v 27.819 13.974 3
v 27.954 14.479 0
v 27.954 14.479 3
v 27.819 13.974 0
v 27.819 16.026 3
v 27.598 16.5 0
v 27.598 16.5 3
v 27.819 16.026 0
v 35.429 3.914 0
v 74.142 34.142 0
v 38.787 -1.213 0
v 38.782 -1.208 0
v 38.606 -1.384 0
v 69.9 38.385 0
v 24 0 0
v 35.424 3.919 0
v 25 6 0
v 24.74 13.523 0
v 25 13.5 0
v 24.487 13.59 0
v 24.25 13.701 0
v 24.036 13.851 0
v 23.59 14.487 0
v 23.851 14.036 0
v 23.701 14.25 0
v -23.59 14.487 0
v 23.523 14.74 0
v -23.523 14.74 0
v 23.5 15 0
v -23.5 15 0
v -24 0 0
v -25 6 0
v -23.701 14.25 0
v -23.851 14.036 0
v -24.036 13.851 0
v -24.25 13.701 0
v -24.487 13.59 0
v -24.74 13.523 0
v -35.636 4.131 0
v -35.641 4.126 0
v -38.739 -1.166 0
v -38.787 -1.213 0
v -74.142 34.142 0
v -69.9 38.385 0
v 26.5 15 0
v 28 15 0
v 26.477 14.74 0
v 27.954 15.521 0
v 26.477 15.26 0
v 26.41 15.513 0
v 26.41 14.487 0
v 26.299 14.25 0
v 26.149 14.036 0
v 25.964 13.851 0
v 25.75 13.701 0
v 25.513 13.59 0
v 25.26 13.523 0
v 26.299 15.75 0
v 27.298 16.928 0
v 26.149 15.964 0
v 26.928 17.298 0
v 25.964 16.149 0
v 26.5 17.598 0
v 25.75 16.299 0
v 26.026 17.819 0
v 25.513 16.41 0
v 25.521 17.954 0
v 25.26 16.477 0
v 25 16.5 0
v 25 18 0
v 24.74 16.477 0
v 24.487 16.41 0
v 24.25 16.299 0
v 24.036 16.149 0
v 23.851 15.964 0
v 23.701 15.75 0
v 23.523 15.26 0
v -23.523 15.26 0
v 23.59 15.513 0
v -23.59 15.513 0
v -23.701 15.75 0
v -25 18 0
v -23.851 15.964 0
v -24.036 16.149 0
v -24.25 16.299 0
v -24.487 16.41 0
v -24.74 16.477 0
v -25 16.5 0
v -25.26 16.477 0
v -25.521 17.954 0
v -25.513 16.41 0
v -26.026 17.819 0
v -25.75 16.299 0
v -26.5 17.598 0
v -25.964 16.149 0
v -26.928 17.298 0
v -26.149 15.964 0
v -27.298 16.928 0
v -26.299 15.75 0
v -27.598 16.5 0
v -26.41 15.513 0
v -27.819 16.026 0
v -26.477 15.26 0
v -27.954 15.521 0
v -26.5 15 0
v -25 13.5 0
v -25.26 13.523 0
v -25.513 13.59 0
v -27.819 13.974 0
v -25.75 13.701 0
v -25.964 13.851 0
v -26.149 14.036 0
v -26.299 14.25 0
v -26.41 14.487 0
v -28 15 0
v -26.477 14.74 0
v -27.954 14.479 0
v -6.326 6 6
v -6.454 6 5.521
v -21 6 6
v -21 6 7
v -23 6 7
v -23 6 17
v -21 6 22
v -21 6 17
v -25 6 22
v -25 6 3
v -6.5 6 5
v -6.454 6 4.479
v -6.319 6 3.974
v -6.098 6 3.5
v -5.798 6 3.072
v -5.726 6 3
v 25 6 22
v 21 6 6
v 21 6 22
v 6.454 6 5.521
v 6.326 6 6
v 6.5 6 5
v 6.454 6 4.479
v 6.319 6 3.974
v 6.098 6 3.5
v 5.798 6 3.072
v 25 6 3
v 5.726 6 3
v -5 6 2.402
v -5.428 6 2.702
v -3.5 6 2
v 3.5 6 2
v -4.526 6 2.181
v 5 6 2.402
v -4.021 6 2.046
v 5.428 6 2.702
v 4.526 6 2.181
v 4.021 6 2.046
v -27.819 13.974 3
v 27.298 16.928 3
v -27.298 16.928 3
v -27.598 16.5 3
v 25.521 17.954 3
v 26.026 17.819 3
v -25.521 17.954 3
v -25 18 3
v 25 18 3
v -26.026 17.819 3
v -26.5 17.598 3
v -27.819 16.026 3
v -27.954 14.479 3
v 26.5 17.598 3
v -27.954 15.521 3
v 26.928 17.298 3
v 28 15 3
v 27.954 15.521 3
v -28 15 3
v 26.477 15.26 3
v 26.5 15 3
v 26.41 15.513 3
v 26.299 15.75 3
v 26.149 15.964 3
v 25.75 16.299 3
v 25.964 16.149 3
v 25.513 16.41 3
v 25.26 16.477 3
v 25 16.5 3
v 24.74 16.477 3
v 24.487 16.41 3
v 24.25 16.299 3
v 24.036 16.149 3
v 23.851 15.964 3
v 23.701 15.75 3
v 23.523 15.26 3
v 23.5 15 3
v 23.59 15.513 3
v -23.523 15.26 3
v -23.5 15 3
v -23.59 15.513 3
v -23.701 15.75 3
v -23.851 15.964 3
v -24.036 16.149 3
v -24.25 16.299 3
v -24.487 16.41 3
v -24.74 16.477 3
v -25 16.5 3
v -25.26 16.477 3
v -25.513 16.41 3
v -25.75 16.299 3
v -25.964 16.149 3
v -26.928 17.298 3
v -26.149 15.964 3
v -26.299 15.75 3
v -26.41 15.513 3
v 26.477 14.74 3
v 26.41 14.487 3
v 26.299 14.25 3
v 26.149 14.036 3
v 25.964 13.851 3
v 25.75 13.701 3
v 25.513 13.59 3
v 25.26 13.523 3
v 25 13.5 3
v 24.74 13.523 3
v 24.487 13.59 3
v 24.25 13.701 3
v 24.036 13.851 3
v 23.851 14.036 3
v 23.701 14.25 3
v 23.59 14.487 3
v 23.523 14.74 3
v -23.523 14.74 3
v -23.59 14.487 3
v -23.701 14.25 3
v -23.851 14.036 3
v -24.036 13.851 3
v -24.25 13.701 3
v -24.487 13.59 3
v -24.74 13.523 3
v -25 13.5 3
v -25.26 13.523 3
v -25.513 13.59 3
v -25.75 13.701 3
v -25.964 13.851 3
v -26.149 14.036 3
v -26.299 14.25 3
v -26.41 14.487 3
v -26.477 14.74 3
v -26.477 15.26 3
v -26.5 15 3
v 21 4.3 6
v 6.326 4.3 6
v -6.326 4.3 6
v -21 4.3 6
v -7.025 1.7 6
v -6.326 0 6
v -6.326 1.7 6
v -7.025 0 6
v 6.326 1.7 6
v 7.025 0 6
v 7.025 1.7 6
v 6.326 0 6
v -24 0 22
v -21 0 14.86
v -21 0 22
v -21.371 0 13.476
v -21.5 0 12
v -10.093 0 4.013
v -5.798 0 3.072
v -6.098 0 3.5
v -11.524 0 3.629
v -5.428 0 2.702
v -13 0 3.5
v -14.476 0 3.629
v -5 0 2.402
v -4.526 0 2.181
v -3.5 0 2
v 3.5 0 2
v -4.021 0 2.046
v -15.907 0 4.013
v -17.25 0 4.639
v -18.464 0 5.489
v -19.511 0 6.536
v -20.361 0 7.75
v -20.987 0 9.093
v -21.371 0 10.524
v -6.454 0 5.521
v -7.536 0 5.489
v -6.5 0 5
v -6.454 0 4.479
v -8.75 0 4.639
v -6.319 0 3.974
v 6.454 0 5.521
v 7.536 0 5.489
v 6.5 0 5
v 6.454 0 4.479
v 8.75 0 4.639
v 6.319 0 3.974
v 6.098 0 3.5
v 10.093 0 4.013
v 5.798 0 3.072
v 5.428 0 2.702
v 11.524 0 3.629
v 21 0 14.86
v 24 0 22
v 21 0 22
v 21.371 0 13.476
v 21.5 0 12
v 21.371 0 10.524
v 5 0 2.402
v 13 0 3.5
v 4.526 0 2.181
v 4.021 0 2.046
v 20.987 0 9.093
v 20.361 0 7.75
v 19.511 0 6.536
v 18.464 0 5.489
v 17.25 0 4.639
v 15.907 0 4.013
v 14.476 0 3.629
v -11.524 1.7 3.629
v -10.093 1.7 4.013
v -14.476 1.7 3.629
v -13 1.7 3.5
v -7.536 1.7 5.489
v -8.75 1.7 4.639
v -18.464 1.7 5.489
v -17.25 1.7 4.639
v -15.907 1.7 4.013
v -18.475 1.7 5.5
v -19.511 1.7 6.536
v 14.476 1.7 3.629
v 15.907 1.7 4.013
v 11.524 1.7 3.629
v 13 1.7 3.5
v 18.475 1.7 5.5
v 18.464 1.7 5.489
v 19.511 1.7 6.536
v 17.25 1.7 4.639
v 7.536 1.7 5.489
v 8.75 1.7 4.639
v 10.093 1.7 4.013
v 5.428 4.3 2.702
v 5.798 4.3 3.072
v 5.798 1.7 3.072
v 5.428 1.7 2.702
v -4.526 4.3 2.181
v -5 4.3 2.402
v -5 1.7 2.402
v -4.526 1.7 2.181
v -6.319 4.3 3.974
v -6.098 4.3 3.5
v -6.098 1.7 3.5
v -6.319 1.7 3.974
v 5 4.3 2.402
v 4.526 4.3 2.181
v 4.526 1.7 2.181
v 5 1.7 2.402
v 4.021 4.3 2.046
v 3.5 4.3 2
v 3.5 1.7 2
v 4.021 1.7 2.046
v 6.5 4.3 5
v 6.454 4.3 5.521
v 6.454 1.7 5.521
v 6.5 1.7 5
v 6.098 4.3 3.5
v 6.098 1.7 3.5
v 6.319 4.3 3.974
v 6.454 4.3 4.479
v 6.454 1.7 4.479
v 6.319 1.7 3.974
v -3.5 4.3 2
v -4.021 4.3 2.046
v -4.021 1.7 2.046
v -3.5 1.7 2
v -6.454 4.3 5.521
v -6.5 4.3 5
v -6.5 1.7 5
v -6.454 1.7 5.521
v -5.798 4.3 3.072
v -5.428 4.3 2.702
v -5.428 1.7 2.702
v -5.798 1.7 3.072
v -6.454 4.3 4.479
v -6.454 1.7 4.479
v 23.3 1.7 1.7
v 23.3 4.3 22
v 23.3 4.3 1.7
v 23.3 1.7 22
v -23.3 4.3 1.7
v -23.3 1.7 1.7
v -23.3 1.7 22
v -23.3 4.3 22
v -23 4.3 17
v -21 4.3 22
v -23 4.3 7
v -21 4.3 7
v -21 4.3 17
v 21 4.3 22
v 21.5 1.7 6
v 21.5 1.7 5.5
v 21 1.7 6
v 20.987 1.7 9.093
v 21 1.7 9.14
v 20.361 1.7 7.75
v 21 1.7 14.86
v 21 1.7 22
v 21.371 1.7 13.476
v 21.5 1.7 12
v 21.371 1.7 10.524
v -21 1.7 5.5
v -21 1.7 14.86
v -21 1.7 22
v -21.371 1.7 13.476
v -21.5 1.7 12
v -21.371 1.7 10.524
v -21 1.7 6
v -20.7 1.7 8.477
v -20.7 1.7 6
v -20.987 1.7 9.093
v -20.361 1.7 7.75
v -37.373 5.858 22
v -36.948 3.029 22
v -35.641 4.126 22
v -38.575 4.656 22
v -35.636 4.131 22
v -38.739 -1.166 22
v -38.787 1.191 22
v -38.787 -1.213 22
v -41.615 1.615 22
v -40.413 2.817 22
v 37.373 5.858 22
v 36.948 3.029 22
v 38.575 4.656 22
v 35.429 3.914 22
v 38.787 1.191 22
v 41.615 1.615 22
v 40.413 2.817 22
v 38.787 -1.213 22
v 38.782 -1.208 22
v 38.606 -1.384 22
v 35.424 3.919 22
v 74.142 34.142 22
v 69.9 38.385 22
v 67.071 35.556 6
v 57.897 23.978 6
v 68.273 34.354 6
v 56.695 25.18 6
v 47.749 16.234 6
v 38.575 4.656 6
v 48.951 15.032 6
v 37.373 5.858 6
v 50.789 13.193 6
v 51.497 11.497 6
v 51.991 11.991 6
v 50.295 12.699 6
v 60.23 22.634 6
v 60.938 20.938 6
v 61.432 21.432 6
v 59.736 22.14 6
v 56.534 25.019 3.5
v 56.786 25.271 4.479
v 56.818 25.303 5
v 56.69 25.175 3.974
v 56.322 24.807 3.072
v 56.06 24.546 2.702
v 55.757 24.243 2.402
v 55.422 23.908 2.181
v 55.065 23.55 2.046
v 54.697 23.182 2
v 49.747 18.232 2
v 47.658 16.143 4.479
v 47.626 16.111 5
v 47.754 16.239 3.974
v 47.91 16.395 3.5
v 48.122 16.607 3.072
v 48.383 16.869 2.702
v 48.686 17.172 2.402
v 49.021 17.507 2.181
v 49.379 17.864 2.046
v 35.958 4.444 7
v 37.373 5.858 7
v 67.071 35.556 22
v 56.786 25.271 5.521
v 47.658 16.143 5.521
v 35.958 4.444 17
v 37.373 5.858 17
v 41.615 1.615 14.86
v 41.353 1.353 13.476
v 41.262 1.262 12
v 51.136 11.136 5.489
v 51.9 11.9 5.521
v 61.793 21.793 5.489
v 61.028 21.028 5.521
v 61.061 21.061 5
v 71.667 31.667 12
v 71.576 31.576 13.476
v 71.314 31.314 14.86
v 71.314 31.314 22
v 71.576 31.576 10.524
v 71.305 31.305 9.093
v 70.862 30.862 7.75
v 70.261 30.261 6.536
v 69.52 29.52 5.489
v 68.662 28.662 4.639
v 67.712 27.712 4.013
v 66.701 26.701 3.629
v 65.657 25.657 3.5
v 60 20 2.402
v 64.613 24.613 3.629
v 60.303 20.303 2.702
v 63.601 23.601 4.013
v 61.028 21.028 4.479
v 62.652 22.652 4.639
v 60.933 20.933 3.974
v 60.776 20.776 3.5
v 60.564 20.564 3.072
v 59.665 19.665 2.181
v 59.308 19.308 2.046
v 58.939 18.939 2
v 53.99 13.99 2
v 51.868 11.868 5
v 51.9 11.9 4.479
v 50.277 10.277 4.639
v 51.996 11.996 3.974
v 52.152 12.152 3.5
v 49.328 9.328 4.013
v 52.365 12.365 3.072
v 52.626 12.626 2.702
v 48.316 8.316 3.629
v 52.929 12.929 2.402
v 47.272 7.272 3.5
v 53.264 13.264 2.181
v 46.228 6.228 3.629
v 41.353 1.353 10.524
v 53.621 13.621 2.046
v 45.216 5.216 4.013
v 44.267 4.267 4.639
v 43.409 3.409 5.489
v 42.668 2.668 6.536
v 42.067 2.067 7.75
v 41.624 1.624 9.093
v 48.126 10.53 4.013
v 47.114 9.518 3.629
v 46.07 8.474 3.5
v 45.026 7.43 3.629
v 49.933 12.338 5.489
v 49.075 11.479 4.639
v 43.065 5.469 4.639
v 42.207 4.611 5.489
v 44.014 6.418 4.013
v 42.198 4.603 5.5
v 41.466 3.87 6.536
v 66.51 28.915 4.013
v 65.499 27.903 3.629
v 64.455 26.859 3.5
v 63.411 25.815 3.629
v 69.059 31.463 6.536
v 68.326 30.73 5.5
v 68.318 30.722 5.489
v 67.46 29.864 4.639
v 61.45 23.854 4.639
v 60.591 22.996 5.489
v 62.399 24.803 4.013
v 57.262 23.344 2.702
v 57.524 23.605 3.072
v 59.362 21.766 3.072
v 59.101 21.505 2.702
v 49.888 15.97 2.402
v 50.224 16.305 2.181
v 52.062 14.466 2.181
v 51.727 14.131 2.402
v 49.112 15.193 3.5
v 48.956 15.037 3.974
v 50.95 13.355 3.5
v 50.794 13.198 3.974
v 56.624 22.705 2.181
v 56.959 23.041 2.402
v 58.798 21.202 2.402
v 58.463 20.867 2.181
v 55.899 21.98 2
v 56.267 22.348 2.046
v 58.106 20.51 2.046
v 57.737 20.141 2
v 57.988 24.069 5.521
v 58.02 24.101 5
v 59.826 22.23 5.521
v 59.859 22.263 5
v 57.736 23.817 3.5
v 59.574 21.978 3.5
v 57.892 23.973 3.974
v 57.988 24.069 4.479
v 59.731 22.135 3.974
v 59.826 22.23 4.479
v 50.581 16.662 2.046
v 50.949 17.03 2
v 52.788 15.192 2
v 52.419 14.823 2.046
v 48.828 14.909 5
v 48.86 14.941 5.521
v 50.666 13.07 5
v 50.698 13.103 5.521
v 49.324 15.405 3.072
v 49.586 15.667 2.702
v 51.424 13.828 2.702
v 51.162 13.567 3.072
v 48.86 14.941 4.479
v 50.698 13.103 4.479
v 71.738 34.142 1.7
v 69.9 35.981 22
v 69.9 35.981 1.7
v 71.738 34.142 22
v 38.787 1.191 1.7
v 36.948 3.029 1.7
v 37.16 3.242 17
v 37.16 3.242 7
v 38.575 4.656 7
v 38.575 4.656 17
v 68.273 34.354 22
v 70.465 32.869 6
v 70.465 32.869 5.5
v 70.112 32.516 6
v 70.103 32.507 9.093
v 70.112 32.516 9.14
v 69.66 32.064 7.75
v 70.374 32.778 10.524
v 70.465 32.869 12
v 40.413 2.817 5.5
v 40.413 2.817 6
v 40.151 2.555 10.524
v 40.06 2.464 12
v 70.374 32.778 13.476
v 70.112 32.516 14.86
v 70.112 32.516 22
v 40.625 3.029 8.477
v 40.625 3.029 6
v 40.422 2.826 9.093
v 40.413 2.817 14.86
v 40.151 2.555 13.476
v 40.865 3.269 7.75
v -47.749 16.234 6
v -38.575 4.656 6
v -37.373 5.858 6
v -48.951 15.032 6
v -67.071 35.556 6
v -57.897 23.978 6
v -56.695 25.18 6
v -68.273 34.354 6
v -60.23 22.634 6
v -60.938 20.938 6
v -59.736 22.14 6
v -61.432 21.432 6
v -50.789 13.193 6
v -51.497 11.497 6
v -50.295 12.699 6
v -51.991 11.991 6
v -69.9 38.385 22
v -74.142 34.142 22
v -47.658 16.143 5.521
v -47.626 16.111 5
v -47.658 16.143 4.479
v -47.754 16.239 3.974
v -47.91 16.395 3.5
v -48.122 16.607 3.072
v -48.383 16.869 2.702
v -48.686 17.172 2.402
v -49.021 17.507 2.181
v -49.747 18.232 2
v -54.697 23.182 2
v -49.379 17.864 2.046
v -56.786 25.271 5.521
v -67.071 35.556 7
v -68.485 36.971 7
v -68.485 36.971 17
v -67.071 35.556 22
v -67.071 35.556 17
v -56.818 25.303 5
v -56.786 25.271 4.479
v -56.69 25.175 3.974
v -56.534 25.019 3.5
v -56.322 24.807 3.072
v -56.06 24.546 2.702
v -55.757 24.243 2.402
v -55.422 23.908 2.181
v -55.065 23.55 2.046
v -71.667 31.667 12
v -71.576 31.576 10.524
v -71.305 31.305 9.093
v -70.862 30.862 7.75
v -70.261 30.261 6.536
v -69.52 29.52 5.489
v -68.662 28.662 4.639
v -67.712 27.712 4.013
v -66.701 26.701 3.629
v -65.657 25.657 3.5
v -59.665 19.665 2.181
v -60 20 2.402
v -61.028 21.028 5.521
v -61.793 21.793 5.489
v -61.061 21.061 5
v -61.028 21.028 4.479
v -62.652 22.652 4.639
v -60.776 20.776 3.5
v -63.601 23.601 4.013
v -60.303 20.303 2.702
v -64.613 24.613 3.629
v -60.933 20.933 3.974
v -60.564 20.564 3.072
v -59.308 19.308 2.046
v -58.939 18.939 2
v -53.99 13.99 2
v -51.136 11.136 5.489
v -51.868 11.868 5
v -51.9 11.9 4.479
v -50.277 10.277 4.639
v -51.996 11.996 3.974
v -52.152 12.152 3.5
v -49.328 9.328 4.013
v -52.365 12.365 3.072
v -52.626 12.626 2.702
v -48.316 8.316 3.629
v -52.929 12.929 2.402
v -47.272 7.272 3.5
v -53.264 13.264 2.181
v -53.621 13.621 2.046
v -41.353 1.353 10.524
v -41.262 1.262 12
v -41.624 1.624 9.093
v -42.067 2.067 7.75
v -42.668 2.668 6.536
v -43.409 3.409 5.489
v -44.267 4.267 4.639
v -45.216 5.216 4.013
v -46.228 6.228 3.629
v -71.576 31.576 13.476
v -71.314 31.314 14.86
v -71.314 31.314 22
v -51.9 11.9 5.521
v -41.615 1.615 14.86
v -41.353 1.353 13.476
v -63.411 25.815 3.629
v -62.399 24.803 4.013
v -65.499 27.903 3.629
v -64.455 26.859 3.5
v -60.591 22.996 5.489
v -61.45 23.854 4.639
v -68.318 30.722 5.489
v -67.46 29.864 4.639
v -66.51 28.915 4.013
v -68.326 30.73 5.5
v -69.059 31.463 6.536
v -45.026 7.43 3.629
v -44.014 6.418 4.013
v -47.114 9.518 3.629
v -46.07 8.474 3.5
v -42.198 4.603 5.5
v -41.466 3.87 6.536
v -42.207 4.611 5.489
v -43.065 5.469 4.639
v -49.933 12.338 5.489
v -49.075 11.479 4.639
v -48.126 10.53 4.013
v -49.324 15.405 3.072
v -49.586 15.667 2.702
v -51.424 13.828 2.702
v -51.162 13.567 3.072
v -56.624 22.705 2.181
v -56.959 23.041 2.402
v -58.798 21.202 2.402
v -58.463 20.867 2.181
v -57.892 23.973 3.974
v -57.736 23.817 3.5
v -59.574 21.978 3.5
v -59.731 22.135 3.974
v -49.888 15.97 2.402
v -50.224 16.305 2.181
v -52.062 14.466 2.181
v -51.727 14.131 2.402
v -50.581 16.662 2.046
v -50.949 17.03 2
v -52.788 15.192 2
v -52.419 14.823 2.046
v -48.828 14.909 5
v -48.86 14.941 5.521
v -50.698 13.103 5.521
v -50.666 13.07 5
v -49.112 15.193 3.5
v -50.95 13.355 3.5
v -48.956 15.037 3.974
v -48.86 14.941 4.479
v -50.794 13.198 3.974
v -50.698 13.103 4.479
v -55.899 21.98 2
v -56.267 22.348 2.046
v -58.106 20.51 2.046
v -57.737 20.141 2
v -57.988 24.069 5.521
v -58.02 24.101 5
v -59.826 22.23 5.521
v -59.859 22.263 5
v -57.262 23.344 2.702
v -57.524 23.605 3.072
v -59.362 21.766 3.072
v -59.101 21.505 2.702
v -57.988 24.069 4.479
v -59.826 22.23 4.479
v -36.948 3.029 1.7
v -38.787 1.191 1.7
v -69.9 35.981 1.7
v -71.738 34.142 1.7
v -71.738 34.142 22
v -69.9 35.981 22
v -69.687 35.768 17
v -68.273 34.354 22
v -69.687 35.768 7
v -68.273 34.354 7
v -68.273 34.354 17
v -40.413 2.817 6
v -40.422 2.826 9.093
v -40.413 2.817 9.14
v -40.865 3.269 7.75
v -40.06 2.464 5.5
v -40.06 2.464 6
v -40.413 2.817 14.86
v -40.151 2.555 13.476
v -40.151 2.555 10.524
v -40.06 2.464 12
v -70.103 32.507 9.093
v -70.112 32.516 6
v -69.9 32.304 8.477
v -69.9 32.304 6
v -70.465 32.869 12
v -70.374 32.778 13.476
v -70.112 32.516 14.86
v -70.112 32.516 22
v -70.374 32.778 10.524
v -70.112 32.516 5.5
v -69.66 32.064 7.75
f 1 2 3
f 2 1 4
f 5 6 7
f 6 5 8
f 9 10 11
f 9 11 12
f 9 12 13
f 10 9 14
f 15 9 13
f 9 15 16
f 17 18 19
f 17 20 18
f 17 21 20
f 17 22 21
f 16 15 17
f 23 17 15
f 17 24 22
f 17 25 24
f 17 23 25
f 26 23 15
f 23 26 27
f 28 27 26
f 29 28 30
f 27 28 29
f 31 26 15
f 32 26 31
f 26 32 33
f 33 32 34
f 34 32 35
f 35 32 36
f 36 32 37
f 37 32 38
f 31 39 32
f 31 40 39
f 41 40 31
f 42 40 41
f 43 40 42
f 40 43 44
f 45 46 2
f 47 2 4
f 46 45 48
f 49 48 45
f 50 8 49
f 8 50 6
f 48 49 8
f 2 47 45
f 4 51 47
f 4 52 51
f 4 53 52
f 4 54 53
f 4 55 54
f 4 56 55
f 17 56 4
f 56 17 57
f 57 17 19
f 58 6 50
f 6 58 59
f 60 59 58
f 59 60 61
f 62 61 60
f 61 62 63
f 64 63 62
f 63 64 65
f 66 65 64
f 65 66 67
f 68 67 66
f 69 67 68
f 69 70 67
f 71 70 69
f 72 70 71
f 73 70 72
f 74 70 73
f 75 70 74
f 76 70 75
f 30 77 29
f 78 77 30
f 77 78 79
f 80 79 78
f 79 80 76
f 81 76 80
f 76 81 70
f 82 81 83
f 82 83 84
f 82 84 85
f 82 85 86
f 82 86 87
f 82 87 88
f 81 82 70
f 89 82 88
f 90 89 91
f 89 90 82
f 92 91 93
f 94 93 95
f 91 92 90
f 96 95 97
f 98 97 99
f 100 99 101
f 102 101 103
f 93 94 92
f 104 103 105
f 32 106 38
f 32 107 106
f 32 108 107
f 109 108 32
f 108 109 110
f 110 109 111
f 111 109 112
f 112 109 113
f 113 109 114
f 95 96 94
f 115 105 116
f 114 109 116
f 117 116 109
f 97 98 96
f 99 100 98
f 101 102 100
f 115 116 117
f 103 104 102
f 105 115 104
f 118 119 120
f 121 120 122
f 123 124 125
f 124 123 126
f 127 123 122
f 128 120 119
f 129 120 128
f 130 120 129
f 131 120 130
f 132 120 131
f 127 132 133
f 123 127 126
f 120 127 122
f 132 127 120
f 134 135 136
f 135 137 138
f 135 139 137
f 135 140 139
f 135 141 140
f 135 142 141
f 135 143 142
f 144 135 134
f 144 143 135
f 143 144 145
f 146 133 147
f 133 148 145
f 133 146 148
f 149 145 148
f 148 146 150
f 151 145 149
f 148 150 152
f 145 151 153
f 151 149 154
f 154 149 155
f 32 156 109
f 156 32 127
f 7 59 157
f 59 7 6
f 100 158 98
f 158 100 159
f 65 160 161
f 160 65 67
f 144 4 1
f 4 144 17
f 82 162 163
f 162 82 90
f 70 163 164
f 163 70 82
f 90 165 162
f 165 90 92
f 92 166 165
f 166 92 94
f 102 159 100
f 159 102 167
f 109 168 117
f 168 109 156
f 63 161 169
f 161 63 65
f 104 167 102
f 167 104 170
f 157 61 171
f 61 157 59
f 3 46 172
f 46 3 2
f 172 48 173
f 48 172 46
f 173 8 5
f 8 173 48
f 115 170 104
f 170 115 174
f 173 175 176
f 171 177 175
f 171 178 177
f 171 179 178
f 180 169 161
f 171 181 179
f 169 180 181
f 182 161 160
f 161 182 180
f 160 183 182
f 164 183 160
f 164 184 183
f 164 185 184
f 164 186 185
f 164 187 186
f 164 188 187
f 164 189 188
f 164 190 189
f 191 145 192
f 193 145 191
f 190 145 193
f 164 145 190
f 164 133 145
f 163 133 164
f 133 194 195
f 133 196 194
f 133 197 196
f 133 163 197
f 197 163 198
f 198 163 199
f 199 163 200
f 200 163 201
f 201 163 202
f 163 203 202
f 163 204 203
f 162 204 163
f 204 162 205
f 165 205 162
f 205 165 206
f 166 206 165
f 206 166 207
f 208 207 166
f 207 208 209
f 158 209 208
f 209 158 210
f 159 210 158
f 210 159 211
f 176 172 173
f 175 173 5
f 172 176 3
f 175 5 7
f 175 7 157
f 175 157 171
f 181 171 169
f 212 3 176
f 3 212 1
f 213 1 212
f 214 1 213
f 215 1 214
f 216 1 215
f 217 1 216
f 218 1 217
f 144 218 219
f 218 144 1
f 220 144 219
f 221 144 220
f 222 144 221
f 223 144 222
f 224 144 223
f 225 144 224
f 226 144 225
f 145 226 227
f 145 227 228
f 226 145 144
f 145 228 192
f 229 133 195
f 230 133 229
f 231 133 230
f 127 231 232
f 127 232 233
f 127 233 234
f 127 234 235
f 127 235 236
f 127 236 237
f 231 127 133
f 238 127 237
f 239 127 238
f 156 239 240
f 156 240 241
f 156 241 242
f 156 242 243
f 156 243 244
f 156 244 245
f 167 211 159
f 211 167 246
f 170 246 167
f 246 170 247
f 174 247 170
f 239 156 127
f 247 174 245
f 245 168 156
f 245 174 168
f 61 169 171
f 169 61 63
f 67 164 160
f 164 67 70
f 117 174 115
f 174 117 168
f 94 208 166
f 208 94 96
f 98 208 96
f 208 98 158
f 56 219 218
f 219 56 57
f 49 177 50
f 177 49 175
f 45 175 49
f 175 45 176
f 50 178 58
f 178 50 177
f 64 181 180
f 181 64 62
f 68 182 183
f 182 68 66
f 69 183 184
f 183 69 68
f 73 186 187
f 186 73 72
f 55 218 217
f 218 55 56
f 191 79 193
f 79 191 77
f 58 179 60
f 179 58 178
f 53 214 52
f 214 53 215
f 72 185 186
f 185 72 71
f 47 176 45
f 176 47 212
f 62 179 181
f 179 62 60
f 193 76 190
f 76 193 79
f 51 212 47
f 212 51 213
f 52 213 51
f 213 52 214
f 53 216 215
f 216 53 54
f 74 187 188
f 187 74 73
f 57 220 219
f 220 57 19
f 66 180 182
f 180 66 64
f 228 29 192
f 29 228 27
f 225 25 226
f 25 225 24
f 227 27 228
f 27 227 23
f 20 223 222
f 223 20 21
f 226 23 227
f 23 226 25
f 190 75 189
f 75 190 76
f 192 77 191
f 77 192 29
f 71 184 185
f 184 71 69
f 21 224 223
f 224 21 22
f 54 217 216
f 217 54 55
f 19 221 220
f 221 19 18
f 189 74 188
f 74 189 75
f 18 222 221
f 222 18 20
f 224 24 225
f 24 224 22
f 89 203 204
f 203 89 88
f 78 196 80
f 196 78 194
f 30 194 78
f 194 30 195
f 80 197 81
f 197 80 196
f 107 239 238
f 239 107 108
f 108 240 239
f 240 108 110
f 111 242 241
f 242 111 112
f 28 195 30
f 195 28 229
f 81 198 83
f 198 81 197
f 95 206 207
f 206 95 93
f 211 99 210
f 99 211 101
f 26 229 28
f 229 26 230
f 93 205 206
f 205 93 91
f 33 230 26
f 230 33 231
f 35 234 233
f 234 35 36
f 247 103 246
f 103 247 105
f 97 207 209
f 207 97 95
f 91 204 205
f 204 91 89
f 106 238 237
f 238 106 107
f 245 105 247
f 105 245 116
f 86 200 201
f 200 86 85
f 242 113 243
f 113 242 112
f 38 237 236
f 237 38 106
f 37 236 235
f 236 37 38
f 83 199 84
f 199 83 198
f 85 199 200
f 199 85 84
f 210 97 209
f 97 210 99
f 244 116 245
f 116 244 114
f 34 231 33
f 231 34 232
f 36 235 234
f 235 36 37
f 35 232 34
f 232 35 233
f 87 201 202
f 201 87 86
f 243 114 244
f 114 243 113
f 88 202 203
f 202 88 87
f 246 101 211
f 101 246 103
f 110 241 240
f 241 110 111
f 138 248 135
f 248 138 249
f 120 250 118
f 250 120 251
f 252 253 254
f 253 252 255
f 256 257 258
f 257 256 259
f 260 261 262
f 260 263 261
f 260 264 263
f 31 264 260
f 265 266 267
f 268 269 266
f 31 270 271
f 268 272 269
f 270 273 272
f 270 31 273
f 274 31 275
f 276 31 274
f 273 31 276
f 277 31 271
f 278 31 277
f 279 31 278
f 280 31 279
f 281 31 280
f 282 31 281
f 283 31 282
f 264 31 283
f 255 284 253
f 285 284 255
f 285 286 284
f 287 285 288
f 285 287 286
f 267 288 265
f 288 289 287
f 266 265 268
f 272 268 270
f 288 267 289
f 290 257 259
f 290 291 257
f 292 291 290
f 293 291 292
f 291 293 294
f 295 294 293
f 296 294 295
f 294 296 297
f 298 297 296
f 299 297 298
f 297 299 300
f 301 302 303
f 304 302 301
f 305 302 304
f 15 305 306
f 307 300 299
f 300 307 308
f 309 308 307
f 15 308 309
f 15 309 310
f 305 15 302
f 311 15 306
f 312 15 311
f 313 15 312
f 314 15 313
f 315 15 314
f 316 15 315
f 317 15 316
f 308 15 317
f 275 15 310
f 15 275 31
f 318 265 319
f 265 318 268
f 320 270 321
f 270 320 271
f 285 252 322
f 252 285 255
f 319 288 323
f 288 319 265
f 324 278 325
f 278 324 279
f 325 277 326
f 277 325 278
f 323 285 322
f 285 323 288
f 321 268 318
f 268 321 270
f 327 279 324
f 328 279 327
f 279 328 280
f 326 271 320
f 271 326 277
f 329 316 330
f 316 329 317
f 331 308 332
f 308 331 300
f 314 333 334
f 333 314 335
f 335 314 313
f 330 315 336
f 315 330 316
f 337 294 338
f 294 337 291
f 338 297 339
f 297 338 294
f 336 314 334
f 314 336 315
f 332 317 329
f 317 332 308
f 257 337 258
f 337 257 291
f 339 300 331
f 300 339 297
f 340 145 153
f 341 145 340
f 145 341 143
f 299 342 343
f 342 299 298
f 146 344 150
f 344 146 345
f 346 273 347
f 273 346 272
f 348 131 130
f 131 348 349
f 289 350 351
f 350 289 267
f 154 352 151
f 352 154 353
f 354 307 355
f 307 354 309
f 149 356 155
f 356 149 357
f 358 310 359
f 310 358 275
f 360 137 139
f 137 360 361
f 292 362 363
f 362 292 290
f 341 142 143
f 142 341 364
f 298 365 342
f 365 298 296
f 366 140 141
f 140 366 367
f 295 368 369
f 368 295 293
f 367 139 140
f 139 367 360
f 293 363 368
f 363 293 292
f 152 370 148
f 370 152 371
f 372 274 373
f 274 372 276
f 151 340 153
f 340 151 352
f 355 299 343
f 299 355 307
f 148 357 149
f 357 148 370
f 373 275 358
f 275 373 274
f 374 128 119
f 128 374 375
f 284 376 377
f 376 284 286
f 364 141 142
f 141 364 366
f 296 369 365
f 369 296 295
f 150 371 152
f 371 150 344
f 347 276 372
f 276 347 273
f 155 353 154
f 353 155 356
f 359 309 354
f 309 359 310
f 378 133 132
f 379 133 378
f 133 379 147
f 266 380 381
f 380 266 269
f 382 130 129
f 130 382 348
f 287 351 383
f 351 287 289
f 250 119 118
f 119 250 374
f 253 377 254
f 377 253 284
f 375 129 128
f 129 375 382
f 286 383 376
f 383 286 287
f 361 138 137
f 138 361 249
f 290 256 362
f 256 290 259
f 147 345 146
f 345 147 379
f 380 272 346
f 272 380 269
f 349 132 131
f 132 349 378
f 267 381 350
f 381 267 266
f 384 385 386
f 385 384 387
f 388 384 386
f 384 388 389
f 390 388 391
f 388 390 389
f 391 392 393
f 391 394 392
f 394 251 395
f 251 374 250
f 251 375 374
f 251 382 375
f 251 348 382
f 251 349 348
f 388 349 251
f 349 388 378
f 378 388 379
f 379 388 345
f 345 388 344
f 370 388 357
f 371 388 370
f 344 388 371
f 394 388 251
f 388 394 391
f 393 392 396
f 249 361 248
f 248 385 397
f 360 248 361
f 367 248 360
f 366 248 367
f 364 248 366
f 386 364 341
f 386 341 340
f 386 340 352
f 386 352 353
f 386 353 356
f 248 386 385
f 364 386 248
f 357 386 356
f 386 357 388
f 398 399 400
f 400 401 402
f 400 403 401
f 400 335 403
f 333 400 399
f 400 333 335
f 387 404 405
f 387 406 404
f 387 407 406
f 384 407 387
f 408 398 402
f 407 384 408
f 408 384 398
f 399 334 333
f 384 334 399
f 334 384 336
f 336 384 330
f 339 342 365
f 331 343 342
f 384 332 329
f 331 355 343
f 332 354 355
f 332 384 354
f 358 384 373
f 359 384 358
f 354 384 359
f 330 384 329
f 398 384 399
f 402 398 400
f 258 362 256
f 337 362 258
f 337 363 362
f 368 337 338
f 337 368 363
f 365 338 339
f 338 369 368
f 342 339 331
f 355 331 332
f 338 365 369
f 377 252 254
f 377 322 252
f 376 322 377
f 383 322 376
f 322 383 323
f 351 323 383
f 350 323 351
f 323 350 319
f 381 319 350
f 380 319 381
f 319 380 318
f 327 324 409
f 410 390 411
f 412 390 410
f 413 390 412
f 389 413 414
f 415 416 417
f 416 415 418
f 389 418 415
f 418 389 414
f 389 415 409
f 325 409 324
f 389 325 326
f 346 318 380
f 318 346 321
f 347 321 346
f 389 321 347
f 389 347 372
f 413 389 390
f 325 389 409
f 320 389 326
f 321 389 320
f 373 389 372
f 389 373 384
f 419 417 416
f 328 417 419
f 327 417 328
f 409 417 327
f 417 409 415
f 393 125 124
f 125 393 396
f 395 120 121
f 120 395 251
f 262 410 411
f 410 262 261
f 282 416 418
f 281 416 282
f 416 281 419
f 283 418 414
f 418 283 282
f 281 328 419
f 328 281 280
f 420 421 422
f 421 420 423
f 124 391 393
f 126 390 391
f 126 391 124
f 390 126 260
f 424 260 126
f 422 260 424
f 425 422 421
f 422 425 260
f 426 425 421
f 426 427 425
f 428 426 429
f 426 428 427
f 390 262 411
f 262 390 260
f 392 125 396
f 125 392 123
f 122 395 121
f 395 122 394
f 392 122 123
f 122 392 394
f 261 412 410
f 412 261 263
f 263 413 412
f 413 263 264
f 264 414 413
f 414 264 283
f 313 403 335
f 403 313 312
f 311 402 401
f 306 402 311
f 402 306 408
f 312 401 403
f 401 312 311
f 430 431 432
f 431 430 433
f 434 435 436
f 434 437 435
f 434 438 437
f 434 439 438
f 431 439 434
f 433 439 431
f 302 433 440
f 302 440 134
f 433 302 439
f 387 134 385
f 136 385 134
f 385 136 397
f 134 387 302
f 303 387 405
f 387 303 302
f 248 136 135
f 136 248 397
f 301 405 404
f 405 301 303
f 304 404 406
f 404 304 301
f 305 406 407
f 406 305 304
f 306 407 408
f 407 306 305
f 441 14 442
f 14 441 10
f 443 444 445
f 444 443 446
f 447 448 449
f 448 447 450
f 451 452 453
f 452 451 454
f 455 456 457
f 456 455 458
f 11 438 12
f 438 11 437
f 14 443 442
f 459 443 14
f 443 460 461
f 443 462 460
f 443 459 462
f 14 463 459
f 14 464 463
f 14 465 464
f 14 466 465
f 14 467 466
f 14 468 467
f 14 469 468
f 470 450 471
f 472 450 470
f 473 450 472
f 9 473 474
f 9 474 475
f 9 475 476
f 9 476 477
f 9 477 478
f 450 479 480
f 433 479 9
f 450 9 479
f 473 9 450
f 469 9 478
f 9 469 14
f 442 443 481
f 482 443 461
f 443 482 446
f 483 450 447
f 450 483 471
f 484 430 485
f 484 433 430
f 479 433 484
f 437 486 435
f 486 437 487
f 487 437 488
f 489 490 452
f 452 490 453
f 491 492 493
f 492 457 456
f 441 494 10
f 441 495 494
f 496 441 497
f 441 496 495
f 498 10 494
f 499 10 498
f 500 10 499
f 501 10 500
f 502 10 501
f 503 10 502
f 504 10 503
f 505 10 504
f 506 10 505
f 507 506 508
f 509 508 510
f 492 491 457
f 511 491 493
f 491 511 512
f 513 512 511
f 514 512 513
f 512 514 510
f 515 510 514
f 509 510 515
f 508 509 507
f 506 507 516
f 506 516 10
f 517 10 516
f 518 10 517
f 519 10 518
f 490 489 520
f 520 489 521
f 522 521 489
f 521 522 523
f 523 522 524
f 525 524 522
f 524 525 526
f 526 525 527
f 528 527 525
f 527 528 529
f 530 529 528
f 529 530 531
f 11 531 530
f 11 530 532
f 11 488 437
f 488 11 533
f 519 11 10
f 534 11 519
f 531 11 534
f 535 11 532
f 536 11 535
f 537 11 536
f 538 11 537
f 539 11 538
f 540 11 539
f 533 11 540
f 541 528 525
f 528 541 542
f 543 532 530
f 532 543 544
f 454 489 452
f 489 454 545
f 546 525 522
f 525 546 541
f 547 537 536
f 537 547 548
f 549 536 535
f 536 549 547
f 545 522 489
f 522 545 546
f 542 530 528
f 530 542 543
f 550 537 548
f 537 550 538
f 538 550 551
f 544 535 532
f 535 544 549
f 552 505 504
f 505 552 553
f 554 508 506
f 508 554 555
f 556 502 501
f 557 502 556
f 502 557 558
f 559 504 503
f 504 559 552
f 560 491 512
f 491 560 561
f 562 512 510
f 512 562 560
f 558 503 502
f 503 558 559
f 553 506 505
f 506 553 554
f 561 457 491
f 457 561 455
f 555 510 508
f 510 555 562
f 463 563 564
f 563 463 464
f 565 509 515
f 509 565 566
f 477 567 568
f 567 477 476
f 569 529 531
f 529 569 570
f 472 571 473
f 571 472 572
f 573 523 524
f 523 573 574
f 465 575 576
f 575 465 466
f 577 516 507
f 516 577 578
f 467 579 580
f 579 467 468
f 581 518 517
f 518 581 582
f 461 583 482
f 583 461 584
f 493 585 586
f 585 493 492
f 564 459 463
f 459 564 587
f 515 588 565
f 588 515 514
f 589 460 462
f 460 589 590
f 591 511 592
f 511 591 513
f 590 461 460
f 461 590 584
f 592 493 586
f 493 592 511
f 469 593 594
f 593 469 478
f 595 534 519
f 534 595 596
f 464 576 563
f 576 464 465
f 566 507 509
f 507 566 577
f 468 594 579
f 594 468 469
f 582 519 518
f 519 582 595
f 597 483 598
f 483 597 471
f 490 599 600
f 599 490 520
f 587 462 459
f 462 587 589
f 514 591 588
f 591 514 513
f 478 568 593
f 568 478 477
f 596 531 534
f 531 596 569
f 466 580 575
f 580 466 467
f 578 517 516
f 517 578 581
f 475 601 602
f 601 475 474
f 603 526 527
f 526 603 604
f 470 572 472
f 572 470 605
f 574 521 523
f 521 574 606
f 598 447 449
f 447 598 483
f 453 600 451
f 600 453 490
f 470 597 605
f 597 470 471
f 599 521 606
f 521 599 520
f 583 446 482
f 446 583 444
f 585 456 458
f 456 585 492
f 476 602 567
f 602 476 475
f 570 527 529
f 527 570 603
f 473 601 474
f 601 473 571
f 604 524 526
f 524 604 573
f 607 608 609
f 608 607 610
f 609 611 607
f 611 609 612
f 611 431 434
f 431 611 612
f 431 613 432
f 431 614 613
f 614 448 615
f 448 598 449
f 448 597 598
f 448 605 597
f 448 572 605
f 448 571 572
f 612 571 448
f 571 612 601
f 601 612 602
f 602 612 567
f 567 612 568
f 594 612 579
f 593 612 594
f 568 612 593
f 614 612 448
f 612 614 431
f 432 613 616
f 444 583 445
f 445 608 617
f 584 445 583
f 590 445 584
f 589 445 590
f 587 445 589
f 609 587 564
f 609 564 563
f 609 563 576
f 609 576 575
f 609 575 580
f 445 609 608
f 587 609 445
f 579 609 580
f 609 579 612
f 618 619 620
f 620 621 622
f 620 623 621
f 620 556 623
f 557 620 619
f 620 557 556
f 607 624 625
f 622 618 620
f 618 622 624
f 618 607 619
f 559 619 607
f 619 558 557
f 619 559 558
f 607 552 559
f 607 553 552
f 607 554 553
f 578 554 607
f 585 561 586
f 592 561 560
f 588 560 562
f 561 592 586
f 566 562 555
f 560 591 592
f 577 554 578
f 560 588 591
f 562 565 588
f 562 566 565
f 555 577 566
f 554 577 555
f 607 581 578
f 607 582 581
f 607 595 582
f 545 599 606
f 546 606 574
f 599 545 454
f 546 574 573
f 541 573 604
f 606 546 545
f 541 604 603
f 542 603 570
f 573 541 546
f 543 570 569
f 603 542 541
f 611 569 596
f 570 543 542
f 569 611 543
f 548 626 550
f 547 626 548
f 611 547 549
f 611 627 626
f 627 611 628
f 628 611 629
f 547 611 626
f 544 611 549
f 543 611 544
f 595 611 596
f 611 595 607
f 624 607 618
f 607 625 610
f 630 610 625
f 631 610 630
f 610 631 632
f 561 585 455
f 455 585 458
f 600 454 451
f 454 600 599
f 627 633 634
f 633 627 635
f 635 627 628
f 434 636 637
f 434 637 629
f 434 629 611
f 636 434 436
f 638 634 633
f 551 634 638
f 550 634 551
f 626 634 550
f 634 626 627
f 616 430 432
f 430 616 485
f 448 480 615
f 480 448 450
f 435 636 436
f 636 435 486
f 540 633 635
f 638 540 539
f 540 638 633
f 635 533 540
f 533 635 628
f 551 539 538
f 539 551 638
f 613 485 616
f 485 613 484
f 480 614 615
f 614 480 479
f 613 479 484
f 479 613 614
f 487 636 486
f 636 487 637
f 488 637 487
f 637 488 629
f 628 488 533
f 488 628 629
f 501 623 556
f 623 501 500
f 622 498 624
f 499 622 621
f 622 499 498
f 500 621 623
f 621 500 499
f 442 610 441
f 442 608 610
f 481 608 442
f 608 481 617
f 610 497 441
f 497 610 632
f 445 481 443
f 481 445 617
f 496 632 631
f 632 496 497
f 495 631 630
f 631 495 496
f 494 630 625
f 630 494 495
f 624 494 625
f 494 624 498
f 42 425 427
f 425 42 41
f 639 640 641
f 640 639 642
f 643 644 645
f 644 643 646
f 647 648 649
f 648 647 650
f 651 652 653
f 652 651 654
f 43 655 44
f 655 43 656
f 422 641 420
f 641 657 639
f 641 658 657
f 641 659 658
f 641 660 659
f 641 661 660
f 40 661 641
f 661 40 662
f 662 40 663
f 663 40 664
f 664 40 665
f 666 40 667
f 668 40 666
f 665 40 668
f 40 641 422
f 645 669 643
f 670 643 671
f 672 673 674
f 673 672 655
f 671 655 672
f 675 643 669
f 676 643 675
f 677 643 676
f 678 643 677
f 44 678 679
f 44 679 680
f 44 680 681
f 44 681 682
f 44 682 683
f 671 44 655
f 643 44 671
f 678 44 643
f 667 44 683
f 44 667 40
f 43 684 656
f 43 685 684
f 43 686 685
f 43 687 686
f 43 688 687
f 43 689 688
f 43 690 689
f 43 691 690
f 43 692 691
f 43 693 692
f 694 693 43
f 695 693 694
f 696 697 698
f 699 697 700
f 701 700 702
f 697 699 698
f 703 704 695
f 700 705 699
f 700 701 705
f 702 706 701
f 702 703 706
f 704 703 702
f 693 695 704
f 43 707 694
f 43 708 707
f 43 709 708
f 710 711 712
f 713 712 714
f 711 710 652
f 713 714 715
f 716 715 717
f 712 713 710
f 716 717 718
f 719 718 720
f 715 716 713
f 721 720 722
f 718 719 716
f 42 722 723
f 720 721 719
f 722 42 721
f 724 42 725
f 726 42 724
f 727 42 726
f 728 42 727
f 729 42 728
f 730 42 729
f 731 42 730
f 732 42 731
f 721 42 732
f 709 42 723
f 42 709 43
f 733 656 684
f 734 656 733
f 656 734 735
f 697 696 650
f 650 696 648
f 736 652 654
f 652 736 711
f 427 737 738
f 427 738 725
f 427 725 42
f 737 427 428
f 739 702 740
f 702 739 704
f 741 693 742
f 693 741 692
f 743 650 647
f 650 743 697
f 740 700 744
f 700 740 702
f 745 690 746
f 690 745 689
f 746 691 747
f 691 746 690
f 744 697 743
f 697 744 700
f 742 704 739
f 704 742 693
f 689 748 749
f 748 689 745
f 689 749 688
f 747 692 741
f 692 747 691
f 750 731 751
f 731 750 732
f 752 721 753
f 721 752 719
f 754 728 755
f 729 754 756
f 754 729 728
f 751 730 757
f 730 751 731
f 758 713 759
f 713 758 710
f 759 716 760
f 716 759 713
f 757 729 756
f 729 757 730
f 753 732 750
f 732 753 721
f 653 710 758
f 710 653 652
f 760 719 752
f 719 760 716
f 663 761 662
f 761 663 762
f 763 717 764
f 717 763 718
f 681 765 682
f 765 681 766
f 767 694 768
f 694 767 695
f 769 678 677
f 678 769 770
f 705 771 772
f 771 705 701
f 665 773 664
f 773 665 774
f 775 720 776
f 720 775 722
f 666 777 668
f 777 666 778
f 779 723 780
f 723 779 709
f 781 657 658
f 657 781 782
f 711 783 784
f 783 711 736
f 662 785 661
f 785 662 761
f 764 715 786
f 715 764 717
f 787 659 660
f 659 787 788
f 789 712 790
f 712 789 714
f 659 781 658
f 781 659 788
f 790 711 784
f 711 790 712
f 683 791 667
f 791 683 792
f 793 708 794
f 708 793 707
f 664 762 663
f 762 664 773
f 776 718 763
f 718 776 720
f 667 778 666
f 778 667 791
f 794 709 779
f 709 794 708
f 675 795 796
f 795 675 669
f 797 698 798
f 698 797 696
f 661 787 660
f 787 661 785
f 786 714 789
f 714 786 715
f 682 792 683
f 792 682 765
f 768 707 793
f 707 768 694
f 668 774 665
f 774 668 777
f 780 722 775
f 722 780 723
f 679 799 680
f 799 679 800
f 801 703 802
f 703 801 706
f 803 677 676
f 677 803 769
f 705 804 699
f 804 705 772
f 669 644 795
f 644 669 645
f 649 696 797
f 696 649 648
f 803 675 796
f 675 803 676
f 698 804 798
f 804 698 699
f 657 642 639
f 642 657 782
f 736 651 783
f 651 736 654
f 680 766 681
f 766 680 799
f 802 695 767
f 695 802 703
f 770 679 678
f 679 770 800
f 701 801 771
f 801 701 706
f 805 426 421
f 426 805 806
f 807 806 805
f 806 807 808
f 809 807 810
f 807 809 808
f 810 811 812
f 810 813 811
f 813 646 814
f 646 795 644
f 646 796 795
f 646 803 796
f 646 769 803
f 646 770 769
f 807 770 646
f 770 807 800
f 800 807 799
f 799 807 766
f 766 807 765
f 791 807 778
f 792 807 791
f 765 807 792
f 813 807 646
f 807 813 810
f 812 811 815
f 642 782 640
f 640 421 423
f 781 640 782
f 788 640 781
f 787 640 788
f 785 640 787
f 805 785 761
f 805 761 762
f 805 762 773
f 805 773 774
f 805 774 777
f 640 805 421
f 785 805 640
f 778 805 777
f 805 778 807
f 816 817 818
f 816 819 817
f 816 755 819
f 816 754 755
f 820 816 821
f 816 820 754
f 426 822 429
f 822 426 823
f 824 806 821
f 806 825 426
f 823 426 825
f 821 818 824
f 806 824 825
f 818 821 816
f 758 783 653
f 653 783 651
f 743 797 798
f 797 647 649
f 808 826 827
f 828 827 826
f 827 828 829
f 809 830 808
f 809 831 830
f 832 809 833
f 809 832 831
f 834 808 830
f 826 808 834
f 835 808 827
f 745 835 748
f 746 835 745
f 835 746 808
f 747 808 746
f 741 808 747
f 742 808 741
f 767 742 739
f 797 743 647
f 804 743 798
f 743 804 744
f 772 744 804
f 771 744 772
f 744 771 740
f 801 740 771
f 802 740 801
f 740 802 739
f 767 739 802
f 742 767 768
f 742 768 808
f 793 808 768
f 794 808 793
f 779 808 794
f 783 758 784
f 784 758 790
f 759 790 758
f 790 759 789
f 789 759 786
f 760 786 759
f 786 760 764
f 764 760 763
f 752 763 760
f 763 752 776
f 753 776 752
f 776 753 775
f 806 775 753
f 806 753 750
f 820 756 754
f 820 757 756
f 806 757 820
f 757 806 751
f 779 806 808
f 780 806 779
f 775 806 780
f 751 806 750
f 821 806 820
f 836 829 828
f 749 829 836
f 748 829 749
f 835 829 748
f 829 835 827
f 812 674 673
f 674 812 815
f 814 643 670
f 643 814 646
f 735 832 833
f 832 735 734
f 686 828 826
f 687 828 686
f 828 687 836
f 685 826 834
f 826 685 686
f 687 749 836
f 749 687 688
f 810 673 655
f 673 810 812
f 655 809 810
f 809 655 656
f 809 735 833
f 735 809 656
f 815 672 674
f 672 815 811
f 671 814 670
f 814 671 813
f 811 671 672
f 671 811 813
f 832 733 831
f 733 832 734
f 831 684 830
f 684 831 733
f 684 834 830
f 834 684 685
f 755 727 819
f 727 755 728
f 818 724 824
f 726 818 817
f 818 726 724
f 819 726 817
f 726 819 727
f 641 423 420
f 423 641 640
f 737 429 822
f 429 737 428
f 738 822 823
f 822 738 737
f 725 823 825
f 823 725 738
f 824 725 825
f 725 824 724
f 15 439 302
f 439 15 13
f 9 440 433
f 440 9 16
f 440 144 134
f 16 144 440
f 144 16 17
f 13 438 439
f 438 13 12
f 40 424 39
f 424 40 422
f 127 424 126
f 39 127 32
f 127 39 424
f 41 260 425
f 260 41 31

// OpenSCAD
// file: USS_placeholder.scad
//this is model for project car
//triple_ultrasound_sensor_mount_1.0
//sensor placeholder

module placeholder(){
    //sensor placeholder
    cube([46, 2, 20]);
    translate([10, 0, 10])rotate([90, 0, 0])cylinder(r=8, h=13, $fn=36);
    translate([36, 0, 10])rotate([90, 0, 0])cylinder(r=8, h=13, $fn=36);
    translate([18, 2, 17]) cube([10, 5, 10]);
}
// file: USS_single.scad
include<USS_placeholder.scad>

//cl is board clearance per side in printing
cl = 0.3;
//cl2 is used for cutting
cl2 = cl+cl;

//placeholder();
module USS_mount()
{
    translate([-23, 2, 2])
    union()
    {
        //bottom mount
        difference()
        {
            //mount piece
            translate([-2, -2, -2]) cube([50, 6, 6]);
            
            //first and second sensor cutouts
            translate([10, 0, 10])rotate([90, 0, 0])cylinder(r=8.5, h=13, $fn=36);
            translate([36, 0, 10])rotate([90, 0, 0])cylinder(r=8.5, h=13, $fn=36);
            
            //oscillator cutout
            translate([23, 5, 3])
            {
                hull()
                {
                    translate([3.5, 0, 0]) rotate([90, 0, 0]) cylinder(r=3, h=15, $fn=36);
                    translate([-3.5, 0, 0]) rotate([90, 0, 0]) cylinder(r=3, h=15, $fn=36);
                }
            }
            //board cutout
            translate([-cl, -cl, -cl]) cube([46+cl2, 2+cl2, 5+cl2]);
        } //this ends bottom mount piece-------------------------------------------------------------------------------------------
        difference()
        {
            union()
            {
                //left side mount piece
                translate([-2, -2, 4]) cube([4, 6, 16]);
                //corner piece
                difference()
                {
                    translate([2, -2, 3.5]) cube([3, (2-cl), 5]);  
                    translate([10, 0, 10])rotate([90, 0, 0])cylinder(r=8.5, h=13, $fn=36);

                }
            }
            //ic cutout
            translate([0, 1, 5]) cube([3, 3, 10]);
            //board cutout
            translate([-cl, -cl, 4]) cube([2+cl2, 2+cl2, 16]);
            //sensor clearance
            translate([10, 0, 10])rotate([90, 0, 0])cylinder(r=8.5, h=13, $fn=36);
        }//this is the end of left mount piece

        difference()
            {
            union()
            {
                //rigth mount piece
                translate([44, -2, 4]) cube([4, 6, 16]);
                //corner piece
                difference()
                {
                    translate([41, -2, 3.5]) cube([3.5, (2-cl), 5]);
                    translate([36, 0, 10])rotate([90, 0, 0])cylinder(r=8.5, h=13, $fn=36);
                }
            }
            //board cutout
            translate([44, -cl, 4]) cube([2+cl, 2+cl2, 16]);
            //sensor clearance
            translate([36, 0, 10])rotate([90, 0, 0])cylinder(r=8.5, h=13, $fn=36);
        }
    }
}
// main file
//this is model for project car
//triple_ultrasound_sensor_mount 1.0

include<USS_single.scad>
union()
{
    USS_mount();

    difference()
    {
        hull()
        {
            //hole hull targets for base
            translate([25, 15, 0]) cylinder(r=3, h=3, $fn=36);
            translate([-25, 15, 0]) cylinder(r=3, h=3, $fn=36);
            //hull target for USS_mount
            translate([-25, 6, 0]) cube([50, 1, 3]);
        }
        //hole cutouts
        translate([25, 15, 0]) cylinder(r=1.5, h=5, $fn=36);
        translate([-25, 15, 0]) cylinder(r=1.5, h=5, $fn=36);
    }
    //left mount
    translate([60, 20, 0]) rotate([0, 0, 45]) translate([-5, 0, 0])USS_mount();
    hull()
    {
        //hull target for left mount
        translate([42, 3, 0]) rotate([0, 0, 45]) translate([-5.5, -0.7, 0])cube([1.5, 6, 22]);
        //hull target for center mount->left
        translate([24, 0, 0])cube([1, 6, 22]);
    }

    translate([-60, 20, 0]) rotate([0, 0, -45]) translate([5, 0, 0])USS_mount();

    hull()
    {
        //hull target for rigth mount
        translate([-42, 3, 0]) rotate([0, 0, -45]) translate([3.7, -0.7, 0])cube([1.5, 6, 22]);
        //hull target for center mount->rigth
        translate([-25, 0, 0])cube([1, 6, 22]);
    }
}
